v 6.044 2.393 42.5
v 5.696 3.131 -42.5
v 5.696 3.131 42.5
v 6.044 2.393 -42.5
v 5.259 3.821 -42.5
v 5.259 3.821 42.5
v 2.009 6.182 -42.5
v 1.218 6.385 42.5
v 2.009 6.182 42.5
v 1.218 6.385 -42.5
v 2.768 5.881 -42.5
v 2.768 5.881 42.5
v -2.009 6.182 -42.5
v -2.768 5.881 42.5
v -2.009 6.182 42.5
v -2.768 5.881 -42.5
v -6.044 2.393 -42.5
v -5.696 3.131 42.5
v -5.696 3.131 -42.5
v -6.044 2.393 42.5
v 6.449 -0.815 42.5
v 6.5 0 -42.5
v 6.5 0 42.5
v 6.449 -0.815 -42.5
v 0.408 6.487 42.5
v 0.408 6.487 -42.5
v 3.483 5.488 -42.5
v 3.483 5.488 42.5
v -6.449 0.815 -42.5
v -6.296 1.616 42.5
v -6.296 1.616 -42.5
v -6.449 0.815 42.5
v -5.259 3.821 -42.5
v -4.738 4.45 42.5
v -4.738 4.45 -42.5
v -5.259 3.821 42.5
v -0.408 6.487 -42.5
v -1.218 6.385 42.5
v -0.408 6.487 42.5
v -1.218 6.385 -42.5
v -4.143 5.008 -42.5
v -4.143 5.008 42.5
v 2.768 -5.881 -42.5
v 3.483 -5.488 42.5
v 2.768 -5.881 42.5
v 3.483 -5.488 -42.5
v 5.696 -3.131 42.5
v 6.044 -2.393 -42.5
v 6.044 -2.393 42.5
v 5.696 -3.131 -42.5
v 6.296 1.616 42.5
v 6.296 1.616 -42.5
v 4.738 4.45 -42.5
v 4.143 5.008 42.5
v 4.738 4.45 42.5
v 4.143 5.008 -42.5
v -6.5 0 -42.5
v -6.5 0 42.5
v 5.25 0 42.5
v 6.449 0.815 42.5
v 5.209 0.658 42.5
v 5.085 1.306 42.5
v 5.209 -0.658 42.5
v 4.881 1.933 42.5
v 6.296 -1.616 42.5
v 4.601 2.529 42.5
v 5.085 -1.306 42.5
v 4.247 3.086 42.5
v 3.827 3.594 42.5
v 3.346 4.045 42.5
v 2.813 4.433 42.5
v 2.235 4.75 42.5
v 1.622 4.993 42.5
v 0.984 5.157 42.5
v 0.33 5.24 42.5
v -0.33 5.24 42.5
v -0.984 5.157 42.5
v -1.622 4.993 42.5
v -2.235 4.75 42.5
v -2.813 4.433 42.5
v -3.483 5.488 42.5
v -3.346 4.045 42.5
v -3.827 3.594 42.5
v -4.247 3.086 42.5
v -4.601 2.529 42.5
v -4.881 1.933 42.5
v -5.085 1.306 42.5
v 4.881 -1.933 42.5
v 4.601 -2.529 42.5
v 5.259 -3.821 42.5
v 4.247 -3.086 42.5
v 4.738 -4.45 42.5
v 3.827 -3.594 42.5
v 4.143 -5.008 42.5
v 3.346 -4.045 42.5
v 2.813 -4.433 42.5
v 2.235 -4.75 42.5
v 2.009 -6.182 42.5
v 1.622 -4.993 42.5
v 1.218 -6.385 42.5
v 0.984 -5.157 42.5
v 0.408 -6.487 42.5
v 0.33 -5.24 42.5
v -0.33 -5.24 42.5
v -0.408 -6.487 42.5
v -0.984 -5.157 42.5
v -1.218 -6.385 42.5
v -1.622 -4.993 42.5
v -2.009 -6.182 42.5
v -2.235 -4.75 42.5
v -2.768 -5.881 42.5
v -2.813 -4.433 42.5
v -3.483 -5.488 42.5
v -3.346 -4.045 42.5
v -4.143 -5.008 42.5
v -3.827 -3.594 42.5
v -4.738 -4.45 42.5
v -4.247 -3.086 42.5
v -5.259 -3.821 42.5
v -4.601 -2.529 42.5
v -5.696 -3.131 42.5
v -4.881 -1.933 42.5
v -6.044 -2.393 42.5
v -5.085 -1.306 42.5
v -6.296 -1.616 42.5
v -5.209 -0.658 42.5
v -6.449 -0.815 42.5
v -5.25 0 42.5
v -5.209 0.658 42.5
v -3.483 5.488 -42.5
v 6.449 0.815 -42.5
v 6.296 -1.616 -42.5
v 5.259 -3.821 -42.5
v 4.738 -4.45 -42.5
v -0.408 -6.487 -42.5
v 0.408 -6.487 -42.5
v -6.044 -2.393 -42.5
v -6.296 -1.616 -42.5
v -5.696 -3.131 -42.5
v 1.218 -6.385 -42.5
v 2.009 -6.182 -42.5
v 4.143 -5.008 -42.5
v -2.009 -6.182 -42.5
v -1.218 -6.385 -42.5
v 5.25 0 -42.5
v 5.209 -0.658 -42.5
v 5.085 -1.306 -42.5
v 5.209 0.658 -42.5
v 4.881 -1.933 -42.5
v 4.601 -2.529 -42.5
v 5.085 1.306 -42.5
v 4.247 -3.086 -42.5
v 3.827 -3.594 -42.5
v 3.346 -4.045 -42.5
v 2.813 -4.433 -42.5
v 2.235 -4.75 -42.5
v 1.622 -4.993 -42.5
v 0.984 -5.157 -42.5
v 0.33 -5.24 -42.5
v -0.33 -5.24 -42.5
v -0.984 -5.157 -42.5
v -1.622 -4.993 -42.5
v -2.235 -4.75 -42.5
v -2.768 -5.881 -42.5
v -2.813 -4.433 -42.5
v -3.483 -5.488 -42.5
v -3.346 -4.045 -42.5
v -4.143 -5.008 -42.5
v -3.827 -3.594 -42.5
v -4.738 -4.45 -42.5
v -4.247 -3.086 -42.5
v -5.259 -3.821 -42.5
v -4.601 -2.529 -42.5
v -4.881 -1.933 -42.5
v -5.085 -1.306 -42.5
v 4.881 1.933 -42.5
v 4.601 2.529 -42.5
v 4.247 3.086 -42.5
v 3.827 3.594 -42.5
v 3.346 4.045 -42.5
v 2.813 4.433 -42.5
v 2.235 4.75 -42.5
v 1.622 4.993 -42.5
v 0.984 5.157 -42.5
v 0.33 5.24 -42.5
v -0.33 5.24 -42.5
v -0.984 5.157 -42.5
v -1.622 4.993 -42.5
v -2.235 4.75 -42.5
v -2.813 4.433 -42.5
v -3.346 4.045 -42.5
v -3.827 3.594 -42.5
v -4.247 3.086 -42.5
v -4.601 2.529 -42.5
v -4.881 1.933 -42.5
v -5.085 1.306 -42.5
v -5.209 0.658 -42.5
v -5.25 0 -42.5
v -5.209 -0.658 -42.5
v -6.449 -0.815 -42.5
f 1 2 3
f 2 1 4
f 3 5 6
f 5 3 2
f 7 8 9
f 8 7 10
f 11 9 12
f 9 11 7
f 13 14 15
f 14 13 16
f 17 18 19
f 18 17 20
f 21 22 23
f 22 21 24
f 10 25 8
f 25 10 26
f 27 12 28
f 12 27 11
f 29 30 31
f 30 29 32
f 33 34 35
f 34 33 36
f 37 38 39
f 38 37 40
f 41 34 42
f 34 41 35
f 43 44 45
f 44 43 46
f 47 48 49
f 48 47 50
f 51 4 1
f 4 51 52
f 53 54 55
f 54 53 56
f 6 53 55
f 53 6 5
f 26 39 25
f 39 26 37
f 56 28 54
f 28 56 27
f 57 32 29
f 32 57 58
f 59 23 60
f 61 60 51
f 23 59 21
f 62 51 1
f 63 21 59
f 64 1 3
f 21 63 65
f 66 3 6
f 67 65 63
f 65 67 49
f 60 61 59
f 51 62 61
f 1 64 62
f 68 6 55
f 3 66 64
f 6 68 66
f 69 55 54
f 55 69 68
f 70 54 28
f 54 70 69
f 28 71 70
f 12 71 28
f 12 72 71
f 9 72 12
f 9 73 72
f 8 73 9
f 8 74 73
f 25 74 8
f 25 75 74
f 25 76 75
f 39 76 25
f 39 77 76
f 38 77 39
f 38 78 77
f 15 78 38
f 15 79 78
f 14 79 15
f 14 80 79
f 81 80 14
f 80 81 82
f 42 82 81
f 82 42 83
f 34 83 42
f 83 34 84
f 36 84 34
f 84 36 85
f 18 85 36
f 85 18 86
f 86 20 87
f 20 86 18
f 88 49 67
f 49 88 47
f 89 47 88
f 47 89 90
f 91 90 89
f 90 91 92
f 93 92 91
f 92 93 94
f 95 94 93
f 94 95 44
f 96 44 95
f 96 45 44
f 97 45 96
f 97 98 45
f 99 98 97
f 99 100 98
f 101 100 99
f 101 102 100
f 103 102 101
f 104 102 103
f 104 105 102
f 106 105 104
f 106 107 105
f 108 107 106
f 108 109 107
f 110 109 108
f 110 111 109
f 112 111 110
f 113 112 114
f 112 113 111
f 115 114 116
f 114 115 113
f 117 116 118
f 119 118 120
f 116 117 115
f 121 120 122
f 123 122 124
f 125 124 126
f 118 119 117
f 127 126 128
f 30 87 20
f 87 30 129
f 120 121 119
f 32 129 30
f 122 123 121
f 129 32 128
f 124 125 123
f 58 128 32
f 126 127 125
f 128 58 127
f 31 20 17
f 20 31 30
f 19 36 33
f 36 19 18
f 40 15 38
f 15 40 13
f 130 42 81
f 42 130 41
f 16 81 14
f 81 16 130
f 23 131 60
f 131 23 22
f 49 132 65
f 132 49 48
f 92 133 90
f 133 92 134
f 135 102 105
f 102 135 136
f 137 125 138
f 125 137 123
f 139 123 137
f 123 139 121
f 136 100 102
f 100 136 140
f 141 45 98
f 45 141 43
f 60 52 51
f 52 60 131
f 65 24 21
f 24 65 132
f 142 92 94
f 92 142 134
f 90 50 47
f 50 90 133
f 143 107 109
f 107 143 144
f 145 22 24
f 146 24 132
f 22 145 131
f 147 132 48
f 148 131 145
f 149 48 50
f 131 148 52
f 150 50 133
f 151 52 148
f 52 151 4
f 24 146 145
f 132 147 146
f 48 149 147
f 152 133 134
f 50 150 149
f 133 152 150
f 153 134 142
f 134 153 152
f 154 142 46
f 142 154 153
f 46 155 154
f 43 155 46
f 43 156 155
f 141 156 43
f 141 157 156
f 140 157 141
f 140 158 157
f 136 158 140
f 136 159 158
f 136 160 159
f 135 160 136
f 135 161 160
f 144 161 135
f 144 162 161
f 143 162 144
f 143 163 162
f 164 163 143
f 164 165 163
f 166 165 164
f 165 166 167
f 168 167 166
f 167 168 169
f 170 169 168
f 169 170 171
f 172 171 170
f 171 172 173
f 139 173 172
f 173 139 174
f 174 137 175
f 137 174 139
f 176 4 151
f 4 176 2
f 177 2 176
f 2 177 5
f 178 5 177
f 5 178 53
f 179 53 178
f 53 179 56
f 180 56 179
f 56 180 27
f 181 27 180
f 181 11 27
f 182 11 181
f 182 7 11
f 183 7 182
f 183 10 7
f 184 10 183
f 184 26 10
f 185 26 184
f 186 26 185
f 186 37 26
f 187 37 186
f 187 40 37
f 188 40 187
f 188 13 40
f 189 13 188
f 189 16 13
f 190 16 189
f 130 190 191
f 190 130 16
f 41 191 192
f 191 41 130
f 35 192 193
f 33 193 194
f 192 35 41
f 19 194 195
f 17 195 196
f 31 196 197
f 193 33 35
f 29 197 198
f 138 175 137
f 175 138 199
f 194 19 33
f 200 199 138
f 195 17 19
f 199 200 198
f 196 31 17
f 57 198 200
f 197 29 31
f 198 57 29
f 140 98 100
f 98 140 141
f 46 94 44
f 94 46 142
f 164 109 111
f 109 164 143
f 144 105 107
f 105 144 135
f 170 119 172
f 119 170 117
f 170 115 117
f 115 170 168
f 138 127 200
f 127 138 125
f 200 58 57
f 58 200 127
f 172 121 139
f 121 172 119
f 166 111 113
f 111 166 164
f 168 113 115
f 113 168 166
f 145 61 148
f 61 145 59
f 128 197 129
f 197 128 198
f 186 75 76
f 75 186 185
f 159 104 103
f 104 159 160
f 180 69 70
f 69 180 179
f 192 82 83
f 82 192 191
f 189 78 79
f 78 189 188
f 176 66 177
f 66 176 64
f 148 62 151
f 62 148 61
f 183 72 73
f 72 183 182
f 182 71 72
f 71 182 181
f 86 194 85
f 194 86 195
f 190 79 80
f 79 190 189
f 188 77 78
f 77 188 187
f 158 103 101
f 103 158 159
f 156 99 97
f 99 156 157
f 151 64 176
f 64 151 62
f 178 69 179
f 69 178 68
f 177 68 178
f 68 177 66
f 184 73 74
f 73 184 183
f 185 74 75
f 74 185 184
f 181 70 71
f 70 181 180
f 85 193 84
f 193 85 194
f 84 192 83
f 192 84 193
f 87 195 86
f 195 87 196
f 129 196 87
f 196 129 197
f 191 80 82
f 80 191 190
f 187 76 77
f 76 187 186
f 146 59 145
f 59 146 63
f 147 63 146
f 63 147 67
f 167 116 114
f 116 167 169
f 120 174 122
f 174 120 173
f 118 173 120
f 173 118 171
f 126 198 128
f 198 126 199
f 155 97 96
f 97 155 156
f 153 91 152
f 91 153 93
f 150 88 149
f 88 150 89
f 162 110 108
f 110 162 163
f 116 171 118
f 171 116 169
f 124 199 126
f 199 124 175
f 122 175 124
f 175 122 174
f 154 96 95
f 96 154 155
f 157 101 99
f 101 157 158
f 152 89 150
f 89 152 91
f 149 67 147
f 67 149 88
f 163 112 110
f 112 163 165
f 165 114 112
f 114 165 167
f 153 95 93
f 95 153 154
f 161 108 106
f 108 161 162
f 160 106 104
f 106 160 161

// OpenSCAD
$fn = 50;


difference() {
	union() {
		translate(v = [0, 0, -42.5000000000]) {
			cylinder(h = 85, r = 6.5000000000);
		}
	}
	union() {
		translate(v = [0, 0, -100.0000000000]) {
			cylinder(h = 200, r = 5.2500000000);
		}
	}
}
